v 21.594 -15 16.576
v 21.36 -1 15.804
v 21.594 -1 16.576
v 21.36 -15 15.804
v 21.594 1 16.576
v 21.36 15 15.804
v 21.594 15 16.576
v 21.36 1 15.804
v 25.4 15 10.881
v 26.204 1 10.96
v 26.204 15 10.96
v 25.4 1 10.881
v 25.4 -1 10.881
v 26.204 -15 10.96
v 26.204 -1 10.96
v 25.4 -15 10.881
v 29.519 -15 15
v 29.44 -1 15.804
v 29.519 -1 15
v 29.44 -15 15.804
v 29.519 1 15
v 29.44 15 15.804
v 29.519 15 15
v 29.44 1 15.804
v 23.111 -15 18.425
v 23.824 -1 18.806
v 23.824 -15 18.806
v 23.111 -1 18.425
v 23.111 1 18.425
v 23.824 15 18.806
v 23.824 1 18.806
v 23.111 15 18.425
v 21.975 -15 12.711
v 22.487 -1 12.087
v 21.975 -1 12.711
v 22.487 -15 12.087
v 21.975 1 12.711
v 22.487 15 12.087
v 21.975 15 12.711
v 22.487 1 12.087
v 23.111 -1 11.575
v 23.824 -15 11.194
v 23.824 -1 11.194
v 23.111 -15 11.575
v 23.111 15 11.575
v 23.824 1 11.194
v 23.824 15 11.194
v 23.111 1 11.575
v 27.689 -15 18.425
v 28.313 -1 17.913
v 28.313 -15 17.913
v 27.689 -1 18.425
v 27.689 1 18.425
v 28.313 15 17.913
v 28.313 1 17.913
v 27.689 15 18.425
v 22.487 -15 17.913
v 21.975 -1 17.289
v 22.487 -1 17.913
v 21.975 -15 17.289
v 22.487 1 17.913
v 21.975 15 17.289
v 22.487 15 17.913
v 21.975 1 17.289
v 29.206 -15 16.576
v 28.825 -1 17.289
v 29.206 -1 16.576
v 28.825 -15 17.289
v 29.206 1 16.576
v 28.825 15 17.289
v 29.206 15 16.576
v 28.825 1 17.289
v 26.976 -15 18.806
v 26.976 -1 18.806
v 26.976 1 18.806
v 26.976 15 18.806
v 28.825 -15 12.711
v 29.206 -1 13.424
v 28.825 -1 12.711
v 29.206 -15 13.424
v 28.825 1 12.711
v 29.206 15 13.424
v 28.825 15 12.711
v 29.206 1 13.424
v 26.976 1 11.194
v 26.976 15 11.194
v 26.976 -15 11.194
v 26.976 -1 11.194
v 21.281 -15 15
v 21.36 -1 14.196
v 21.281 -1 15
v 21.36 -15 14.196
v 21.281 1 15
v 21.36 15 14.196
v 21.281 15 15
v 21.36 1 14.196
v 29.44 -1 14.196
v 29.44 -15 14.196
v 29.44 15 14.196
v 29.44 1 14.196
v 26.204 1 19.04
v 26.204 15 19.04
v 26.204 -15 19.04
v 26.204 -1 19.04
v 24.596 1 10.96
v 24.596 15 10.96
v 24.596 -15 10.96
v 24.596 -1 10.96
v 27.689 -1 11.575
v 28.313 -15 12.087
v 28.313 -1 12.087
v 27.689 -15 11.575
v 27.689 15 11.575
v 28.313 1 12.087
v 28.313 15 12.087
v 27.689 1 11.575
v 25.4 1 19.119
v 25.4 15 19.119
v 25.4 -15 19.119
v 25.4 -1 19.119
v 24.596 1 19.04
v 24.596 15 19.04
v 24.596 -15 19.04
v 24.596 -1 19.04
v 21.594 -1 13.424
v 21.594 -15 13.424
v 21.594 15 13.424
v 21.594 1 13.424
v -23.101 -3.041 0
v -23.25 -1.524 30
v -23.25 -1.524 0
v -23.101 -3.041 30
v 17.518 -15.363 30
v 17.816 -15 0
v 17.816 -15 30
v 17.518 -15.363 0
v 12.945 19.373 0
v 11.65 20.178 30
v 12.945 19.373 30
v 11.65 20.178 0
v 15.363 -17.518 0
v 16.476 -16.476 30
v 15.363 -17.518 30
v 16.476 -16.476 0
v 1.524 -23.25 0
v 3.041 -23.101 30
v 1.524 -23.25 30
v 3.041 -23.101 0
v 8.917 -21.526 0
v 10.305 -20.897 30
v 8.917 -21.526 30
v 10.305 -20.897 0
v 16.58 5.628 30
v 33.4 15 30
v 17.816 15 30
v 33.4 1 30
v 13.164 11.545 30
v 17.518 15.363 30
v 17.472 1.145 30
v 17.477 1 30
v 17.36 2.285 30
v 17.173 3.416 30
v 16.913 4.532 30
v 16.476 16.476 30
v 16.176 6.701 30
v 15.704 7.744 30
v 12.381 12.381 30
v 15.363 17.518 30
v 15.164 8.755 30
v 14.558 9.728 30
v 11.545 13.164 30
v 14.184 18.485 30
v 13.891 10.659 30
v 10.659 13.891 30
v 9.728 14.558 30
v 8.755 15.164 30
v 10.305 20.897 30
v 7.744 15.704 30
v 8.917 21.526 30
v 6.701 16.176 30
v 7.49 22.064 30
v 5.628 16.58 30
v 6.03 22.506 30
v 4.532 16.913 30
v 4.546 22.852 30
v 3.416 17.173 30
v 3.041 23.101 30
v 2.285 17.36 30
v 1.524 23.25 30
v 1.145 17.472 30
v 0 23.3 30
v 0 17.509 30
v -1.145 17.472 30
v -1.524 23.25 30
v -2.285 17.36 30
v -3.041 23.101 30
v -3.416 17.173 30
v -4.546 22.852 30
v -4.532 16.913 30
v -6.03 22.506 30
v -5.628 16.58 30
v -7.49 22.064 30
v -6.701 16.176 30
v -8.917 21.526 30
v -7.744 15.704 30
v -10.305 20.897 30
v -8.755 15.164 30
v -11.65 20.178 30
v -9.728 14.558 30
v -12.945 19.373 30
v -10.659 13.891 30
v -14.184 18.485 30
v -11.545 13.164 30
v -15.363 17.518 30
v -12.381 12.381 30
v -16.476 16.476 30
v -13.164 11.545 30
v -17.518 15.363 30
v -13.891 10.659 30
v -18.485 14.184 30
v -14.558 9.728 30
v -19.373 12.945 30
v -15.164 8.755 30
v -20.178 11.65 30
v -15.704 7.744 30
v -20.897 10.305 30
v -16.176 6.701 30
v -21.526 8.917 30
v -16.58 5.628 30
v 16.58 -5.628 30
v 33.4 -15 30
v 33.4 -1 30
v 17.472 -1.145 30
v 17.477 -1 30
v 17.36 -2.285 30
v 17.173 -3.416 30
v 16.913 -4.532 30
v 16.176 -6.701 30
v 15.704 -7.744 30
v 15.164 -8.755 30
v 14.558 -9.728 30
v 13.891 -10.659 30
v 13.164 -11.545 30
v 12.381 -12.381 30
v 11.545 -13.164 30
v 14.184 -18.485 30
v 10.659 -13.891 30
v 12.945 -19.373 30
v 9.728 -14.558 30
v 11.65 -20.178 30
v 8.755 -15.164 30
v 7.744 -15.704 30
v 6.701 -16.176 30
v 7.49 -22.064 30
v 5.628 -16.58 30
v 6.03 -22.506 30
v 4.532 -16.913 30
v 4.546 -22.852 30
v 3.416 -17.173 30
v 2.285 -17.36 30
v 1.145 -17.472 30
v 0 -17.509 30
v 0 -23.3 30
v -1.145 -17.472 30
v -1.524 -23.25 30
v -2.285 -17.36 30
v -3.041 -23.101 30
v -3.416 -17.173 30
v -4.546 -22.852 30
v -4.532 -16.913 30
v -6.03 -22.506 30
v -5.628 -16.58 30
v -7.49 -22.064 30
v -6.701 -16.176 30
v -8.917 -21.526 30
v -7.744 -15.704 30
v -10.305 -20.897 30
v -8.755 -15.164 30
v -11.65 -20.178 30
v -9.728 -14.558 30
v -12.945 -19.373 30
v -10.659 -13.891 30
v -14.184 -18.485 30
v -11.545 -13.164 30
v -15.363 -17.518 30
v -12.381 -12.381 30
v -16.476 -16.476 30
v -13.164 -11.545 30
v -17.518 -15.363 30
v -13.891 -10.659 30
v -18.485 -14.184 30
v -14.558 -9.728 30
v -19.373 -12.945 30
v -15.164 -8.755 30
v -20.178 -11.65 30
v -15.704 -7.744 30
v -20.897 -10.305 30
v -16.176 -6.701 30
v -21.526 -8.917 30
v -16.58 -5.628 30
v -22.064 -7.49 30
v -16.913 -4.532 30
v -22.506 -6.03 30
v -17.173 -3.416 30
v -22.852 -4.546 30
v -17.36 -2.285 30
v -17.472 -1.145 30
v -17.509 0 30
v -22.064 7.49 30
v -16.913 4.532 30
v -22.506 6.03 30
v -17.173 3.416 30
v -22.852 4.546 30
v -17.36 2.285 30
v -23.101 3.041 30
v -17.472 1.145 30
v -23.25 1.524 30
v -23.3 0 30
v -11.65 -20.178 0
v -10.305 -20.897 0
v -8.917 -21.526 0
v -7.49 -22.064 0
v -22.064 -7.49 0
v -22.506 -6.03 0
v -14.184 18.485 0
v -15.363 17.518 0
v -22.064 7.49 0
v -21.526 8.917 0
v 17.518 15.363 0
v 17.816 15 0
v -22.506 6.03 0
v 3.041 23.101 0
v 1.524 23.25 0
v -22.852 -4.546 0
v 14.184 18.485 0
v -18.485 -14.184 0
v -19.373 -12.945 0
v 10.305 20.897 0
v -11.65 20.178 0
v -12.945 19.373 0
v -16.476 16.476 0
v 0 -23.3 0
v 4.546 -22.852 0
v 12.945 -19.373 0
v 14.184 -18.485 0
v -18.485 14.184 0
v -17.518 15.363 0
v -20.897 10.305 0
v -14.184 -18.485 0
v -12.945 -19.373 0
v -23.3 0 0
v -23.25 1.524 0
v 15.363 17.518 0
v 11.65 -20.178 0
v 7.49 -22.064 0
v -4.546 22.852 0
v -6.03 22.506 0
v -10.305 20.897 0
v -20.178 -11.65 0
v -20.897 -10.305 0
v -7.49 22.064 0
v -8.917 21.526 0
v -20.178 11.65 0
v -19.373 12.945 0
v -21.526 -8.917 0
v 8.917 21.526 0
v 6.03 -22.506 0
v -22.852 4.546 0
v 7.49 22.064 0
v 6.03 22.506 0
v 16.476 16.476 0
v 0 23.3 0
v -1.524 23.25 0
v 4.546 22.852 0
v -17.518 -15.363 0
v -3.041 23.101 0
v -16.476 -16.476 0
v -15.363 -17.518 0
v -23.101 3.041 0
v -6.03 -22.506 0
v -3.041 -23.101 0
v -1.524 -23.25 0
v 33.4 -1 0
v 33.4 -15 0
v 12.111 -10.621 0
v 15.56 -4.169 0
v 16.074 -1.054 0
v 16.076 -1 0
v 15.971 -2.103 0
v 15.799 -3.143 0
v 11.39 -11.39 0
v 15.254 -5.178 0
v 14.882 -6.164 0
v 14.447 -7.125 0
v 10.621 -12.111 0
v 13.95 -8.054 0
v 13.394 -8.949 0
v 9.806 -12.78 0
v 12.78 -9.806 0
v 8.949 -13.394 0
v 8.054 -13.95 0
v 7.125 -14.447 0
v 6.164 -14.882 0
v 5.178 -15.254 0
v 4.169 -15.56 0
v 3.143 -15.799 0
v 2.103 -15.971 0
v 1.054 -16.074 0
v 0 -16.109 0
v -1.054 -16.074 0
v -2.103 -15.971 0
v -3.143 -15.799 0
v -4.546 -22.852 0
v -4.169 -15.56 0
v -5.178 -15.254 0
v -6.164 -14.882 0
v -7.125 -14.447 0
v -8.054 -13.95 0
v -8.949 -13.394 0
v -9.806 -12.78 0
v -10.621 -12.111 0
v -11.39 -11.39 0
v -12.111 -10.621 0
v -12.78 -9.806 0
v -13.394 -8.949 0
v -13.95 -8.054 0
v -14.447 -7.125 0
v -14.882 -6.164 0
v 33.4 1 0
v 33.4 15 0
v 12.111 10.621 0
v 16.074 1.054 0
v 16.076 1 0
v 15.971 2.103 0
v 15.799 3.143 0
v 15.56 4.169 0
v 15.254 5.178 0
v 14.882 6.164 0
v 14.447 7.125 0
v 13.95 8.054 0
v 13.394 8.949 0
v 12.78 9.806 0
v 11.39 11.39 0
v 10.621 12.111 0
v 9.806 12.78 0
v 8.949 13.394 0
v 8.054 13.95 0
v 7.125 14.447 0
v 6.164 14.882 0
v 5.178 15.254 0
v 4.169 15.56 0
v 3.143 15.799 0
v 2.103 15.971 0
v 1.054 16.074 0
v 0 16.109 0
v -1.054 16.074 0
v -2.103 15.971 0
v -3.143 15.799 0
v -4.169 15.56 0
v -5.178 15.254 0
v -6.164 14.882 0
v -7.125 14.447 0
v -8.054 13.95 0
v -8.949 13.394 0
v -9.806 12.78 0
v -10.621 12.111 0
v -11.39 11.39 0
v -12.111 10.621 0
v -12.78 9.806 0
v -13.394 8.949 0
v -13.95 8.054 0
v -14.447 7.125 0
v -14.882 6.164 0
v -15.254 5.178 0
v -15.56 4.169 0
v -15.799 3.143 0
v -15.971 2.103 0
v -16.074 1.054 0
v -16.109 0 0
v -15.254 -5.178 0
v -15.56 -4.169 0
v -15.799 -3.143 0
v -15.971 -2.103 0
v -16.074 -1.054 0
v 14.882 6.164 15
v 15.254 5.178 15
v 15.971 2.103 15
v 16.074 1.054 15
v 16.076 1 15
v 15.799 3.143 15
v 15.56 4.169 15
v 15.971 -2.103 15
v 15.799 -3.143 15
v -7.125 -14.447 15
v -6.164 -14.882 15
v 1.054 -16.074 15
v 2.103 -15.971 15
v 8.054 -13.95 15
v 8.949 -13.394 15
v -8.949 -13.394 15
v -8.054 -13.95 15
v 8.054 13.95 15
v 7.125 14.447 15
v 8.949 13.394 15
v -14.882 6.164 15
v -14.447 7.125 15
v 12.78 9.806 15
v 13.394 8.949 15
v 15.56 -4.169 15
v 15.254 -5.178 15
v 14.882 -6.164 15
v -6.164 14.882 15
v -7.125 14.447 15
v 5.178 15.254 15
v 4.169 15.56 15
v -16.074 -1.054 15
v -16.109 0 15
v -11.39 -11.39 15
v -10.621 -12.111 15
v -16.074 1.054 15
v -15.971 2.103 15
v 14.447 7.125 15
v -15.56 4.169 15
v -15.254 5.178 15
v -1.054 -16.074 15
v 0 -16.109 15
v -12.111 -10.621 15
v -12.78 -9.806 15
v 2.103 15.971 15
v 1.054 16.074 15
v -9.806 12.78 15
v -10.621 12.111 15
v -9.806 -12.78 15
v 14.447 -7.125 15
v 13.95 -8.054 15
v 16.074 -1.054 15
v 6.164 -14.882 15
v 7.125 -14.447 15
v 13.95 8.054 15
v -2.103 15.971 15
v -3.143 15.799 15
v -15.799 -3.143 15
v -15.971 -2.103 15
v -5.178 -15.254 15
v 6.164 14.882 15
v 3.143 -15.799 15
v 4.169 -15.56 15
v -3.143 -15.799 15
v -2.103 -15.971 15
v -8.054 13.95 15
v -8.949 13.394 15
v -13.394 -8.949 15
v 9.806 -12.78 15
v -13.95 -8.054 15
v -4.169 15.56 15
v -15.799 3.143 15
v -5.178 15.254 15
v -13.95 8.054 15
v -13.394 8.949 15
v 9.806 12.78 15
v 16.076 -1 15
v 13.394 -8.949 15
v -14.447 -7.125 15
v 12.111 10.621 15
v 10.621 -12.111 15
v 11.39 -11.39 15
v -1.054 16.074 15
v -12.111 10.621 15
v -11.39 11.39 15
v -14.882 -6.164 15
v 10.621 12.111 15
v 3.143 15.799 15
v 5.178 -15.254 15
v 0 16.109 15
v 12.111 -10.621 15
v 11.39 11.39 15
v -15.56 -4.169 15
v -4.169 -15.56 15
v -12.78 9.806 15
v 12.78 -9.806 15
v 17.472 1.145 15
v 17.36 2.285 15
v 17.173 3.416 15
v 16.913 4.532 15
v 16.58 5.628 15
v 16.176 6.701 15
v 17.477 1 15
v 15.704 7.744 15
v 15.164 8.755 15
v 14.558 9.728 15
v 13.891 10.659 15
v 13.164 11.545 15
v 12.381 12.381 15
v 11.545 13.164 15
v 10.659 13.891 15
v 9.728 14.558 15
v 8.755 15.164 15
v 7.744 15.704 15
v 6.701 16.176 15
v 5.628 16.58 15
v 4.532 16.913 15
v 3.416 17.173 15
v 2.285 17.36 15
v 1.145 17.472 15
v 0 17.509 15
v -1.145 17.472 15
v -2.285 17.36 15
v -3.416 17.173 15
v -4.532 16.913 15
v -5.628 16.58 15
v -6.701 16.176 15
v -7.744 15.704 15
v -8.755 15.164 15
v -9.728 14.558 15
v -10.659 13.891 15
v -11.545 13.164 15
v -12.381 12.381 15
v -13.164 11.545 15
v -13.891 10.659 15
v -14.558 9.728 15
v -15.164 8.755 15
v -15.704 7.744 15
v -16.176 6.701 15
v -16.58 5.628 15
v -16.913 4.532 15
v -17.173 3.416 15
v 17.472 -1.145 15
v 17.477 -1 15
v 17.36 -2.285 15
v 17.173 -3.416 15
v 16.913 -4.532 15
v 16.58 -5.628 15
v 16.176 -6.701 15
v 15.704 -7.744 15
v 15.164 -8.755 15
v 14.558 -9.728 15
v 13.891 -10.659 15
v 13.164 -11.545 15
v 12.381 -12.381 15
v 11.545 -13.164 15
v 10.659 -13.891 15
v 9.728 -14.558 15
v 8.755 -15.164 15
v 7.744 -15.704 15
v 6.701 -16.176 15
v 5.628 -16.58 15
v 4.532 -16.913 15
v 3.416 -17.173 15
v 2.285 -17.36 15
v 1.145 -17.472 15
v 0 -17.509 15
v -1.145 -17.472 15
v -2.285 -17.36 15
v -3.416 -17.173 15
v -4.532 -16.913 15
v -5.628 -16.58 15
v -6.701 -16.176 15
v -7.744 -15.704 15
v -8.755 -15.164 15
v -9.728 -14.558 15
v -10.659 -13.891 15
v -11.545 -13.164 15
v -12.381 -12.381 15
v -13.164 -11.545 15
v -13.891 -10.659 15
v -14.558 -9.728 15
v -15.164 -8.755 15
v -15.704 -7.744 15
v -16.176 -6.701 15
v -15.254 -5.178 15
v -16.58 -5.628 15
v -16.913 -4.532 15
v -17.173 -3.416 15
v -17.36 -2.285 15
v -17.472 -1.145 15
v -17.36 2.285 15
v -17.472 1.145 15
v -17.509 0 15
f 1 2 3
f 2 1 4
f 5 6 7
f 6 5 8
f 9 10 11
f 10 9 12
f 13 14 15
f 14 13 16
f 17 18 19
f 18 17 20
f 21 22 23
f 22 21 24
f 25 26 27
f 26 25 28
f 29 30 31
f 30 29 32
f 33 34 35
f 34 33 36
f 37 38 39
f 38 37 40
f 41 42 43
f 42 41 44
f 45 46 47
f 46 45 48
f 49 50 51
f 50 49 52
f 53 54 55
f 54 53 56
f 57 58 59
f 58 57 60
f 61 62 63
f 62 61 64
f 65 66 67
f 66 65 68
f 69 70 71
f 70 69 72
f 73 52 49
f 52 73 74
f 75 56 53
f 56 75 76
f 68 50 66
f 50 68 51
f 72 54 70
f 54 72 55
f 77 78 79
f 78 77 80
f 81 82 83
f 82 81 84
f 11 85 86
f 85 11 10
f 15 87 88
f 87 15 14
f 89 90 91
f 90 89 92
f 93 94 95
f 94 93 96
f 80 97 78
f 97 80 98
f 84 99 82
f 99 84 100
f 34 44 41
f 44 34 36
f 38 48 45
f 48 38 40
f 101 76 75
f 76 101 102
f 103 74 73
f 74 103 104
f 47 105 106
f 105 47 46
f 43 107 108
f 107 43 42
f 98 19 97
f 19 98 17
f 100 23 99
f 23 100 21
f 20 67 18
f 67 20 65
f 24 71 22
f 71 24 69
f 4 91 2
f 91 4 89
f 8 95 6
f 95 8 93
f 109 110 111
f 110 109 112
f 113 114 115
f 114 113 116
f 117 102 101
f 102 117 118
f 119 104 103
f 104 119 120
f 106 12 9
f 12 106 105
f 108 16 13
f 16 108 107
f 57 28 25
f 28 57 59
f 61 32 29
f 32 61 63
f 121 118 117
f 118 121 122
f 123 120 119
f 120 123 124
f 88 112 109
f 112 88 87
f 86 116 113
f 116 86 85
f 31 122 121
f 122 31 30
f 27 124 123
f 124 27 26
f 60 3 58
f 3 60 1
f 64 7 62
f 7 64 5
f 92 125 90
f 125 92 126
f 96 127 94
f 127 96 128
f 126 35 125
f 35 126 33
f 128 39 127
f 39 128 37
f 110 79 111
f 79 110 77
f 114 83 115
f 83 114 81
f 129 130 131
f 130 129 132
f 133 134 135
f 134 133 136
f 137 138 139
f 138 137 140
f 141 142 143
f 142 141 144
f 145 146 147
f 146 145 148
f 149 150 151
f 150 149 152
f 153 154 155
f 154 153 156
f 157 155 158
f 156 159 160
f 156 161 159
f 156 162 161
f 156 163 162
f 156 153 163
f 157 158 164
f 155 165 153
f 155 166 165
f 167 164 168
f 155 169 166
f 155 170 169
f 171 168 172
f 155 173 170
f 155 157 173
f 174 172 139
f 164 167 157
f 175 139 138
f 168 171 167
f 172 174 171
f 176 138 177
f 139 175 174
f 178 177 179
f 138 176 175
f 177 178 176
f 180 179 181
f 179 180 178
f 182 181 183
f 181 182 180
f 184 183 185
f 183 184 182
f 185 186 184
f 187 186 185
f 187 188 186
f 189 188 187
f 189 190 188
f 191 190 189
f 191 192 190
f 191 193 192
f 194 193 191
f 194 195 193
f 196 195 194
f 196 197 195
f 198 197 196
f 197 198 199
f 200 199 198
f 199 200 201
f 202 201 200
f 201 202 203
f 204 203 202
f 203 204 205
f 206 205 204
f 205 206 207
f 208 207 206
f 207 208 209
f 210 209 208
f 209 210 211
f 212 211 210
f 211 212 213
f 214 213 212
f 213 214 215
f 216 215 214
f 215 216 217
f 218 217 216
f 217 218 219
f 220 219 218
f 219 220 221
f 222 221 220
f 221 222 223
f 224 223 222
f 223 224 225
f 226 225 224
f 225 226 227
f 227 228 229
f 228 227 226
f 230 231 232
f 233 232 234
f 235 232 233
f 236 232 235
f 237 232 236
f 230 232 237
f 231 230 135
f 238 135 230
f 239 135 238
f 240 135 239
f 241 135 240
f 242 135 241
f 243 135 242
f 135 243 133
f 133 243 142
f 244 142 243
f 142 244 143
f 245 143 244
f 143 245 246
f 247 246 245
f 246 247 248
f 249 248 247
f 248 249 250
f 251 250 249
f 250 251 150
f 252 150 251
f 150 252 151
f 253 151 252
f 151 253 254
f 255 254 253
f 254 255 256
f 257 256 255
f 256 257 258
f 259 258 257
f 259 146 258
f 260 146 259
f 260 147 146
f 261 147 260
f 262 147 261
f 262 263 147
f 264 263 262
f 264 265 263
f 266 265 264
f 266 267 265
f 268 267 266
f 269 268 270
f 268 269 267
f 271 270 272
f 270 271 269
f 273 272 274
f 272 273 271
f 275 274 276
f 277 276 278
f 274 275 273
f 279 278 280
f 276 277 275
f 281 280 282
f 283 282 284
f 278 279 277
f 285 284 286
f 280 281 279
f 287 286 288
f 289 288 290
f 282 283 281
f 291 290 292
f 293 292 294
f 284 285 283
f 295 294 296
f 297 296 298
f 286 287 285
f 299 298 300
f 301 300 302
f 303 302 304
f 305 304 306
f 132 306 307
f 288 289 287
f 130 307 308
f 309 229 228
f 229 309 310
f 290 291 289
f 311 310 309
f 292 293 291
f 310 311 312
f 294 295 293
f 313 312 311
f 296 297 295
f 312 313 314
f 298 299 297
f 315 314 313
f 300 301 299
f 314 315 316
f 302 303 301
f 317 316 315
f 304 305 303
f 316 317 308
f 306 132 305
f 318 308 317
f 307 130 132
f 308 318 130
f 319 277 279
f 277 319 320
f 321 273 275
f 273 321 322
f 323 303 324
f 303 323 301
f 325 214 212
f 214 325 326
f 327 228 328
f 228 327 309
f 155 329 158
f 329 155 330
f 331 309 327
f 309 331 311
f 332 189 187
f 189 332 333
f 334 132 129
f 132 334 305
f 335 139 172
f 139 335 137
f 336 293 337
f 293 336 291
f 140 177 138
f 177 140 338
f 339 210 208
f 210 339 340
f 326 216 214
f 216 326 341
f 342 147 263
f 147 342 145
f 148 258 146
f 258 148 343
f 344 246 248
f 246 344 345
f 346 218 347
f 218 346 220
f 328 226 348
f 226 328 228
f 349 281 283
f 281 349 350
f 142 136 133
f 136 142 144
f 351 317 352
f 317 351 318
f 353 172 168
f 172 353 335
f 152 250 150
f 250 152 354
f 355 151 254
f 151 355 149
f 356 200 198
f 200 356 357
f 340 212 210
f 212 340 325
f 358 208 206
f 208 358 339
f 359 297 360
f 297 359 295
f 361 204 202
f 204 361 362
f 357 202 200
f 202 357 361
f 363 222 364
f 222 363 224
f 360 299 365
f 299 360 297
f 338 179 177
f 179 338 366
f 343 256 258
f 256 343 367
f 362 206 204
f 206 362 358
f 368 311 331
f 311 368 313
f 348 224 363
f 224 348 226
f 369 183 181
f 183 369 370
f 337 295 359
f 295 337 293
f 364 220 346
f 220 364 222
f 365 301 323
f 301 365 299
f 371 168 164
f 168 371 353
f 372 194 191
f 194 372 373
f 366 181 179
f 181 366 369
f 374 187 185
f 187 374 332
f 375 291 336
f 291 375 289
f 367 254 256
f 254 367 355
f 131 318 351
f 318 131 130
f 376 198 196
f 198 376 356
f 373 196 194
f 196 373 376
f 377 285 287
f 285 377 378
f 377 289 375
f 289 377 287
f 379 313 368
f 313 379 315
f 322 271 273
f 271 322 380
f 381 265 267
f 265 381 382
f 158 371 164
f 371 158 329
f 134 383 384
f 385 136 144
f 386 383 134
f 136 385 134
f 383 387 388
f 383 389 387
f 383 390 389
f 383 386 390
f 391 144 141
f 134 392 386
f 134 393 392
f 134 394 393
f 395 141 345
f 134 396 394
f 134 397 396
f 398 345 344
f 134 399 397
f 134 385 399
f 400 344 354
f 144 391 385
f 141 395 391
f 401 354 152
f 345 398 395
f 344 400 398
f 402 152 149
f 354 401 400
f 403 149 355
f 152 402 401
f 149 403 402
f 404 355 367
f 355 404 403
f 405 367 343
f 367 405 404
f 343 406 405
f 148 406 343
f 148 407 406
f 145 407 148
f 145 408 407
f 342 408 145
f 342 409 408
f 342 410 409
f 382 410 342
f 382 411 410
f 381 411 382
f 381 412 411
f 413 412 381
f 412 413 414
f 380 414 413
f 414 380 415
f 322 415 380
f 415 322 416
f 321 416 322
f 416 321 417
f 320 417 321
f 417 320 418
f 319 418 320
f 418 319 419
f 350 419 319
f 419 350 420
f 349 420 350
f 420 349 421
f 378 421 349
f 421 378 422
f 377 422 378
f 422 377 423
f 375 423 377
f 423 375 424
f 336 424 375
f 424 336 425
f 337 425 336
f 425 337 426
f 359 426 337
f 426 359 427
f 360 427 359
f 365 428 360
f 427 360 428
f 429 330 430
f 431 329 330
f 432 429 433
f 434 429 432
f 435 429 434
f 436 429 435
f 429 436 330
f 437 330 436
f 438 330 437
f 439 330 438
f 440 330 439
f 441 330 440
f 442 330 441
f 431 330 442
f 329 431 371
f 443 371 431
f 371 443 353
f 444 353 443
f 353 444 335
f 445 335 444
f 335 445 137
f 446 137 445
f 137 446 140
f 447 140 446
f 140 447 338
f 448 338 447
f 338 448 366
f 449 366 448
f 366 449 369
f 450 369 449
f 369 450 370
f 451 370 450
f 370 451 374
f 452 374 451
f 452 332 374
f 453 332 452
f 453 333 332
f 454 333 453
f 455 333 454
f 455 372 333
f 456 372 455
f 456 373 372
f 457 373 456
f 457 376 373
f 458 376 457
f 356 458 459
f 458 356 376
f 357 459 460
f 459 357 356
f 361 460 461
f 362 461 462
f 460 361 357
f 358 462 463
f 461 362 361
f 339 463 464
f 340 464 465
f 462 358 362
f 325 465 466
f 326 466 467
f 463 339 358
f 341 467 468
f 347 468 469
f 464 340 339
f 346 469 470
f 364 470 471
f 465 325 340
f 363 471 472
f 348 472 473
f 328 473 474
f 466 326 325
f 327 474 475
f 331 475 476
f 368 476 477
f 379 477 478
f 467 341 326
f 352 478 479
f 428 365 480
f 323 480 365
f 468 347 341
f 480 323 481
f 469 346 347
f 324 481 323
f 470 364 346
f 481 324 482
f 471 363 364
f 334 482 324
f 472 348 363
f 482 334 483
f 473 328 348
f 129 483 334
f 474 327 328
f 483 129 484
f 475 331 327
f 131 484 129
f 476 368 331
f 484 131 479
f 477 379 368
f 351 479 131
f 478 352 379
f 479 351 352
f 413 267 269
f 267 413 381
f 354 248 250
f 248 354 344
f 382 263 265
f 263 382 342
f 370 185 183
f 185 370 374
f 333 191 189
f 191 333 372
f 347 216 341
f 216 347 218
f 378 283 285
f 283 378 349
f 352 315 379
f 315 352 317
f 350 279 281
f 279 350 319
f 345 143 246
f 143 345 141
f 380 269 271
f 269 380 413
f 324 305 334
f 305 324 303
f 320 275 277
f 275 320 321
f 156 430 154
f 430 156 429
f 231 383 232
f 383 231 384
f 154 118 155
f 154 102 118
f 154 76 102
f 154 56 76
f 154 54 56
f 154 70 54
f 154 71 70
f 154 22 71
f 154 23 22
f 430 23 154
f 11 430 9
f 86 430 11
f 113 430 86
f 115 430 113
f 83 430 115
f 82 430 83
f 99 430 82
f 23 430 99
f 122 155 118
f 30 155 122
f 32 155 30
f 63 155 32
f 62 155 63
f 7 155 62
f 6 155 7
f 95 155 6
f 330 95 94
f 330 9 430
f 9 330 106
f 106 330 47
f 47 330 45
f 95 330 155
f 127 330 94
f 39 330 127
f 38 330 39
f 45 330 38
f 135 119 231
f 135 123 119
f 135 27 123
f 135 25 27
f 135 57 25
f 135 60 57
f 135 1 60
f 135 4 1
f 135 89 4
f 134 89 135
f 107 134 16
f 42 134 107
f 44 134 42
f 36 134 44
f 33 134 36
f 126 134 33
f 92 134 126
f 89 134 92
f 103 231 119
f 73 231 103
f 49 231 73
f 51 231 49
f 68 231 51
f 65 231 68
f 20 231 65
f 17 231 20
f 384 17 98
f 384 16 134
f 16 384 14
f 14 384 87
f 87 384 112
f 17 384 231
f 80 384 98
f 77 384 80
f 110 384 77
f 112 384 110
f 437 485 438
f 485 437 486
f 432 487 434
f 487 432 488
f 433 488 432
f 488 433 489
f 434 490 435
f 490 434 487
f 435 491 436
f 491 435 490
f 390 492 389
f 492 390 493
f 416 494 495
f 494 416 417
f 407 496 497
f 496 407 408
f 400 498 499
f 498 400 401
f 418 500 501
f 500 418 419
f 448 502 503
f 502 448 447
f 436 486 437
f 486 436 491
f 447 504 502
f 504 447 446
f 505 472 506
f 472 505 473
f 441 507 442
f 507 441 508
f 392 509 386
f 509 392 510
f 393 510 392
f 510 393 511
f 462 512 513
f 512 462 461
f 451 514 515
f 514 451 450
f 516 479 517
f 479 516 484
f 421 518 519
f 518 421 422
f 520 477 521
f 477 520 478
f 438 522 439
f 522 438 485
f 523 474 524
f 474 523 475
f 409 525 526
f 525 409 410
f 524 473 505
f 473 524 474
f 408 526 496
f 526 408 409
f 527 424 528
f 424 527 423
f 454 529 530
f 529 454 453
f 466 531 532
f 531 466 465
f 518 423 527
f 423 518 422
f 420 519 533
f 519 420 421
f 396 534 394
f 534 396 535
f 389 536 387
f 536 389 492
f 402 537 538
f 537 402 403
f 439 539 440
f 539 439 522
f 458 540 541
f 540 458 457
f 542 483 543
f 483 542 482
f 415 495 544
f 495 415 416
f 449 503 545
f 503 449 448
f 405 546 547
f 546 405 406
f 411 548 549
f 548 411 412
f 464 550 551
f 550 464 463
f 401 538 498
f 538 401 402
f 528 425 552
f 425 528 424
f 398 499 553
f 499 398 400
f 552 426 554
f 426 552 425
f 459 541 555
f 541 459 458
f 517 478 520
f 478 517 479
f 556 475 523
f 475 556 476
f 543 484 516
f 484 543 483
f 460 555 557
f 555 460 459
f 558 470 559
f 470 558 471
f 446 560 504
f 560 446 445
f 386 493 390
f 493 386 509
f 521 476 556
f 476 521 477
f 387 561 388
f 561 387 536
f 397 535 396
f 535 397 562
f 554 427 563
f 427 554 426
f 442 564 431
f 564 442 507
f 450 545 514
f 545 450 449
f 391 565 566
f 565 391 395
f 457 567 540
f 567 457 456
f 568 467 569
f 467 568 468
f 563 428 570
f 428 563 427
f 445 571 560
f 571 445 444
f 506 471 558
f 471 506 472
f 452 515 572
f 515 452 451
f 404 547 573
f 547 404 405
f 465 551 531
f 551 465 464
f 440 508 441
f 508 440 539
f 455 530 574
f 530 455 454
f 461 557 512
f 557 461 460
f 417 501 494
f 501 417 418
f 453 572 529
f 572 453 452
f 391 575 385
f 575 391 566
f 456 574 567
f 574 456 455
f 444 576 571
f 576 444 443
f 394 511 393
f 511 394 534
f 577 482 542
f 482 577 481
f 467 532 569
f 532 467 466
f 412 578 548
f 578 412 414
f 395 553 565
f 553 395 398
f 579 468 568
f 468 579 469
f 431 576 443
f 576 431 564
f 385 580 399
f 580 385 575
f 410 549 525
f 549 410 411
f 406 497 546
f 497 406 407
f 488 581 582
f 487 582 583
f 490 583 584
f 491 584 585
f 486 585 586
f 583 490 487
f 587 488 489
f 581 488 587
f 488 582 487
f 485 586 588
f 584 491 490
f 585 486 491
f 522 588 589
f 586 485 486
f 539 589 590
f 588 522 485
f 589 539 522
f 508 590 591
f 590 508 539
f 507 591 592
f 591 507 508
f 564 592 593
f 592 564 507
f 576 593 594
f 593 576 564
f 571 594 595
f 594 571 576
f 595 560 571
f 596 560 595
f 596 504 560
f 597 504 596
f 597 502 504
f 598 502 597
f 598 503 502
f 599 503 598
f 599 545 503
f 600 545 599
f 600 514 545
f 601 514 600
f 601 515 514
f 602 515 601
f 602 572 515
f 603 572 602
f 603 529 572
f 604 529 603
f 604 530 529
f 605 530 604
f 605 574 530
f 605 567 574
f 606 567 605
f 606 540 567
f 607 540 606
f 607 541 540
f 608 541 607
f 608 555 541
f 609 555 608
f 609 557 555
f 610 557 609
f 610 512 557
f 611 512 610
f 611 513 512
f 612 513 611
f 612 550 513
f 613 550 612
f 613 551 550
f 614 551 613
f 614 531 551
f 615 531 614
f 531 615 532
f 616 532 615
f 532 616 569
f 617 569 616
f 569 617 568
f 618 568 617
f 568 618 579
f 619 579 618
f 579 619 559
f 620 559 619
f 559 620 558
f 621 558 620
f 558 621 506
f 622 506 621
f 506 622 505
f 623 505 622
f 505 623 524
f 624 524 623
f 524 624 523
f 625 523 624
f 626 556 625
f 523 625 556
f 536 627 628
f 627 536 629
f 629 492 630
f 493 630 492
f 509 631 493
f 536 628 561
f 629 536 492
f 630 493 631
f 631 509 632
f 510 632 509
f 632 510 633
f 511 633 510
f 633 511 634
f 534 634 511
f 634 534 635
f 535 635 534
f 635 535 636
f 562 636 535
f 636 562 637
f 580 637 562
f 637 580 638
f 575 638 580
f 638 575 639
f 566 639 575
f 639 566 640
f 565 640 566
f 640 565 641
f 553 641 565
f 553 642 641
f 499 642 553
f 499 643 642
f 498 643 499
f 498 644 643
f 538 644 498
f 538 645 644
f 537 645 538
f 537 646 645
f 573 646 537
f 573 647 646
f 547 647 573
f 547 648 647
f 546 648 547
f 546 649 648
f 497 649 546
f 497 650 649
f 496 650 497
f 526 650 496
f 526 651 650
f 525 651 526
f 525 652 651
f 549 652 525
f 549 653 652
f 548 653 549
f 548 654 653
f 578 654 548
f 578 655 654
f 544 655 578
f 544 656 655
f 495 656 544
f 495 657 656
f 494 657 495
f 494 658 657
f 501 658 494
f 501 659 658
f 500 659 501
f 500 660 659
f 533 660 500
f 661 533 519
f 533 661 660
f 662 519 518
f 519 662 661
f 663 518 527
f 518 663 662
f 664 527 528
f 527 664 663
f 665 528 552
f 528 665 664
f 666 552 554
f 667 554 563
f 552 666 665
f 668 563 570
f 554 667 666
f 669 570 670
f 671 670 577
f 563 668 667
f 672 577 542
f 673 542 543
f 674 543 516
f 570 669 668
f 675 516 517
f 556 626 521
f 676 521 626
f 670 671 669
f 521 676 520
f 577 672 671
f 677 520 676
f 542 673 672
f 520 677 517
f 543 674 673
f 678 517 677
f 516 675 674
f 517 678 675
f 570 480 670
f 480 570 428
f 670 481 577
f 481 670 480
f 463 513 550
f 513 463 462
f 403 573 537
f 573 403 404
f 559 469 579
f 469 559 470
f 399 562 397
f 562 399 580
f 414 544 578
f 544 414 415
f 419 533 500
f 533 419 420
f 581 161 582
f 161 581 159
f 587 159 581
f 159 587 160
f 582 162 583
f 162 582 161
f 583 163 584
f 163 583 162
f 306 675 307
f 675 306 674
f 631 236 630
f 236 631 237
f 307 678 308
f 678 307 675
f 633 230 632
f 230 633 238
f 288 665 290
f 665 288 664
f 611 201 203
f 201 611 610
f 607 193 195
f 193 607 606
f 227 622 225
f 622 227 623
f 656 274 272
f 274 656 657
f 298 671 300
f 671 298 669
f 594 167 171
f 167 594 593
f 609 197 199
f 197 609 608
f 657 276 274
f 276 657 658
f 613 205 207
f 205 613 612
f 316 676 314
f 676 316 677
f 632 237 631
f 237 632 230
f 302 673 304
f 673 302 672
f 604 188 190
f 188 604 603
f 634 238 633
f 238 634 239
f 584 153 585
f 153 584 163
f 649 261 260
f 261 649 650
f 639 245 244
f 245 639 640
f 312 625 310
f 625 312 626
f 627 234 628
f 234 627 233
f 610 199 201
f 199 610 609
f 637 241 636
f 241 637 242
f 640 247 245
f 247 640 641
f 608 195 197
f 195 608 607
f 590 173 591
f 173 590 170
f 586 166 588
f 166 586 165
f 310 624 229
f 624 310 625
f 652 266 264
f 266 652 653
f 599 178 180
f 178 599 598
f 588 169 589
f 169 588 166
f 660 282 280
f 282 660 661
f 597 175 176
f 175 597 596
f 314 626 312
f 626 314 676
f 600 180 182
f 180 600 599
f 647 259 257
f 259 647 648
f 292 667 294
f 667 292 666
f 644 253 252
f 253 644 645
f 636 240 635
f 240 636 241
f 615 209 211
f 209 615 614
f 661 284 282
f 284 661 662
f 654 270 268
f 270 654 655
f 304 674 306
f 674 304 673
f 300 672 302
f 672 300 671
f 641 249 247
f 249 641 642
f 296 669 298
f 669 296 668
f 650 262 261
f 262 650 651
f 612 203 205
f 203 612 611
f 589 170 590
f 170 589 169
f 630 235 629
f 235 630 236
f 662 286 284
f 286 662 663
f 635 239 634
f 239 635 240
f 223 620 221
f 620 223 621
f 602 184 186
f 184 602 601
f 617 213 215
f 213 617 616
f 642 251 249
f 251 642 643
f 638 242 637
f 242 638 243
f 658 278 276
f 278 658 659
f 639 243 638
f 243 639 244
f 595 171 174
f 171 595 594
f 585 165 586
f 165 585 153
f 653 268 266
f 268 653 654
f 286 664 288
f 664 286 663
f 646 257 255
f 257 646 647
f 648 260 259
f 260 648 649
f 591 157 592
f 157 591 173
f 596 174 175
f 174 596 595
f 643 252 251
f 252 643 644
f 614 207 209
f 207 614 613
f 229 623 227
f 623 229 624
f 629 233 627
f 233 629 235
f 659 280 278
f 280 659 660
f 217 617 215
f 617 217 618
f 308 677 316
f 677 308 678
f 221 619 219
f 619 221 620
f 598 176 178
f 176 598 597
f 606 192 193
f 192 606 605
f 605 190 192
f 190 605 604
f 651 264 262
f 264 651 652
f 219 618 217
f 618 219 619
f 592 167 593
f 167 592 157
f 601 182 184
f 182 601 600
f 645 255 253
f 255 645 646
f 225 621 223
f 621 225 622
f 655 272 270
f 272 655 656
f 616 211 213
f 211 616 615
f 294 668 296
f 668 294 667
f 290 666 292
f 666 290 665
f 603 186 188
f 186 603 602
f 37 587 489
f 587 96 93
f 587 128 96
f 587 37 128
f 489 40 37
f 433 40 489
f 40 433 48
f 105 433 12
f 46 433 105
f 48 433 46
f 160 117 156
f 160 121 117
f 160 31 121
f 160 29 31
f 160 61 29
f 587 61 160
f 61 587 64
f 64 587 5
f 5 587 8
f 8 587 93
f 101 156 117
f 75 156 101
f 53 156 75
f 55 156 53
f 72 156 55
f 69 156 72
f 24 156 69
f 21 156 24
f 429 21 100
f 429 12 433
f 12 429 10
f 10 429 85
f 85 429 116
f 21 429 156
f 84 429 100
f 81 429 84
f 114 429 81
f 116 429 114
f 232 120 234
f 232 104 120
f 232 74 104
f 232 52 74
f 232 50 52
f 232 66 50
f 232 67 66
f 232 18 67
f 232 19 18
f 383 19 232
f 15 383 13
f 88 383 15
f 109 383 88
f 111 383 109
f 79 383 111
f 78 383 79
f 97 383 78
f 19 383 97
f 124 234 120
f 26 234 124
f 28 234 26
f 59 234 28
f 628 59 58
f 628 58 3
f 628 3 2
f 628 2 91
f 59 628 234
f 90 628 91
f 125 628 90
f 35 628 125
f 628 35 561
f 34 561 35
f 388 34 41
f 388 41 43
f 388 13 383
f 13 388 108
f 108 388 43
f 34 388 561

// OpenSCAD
// file: zcube.scad
// This function creates a cube with a given x/y either above (f=1) or below (f=-1) the z axis.
module zcube(dimensions, z=0, f=1) {
	translate([0, 0, dimensions[2]/2 * f + z]) cube(dimensions, true);
}
// file: bolts.scad
$radial_error = 0.1;
$fn = 32;

module cylinder_outer(height, radius, fn=$fn) {
	fudge = 1/cos(180/fn);
	cylinder(h=height,r=radius*fudge+$radial_error, $fn=fn);
}

module cylinder_inner(height, radius, fn=$fn) {
	cylinder(h=height,r=radius-$radial_error,$fn=fn);
}

// Make a hole for a bolt/screw combination.
module bolt(diameter=3, depth=8, nut_offset=2, shaft_length=10, inset=10) {
	hole(diameter, depth, inset);
	hull() {
		shaft_width = diameter;
		translate([0, 0, nut_offset]) rotate(360/12, [0, 0, 1]) cylinder_outer(diameter, shaft_width, 6);
		translate([0, shaft_length, nut_offset]) rotate(360/12, [0, 0, 1]) cylinder_outer(diameter, shaft_width, 6);
	}
}

// Make a hole. The diameter is the size of the screw (e.g. 3 for M3). Depth is how far the hole should go for the thread, and inset is how far out there should be a hole for the head to go.
module hole(diameter=3, depth=6, inset=10) {
	cylinder_outer(depth, diameter/2);
	translate([0, 0, depth]) cylinder_outer(inset, diameter, 32);
}

module countersunk_hole(diameter=3, depth=6, inset=10) {
	hole(diameter, depth, inset);
	translate([0, 0, depth-diameter/2]) cylinder(r1=diameter/2+$radial_error, r2=diameter+$radial_error, h=diameter/2);
}

module mounting_hole(diameter=3, depth=6, inset=10, outset=3) {
	difference() {
		cylinder_outer(depth, diameter/2+outset);
		hole(diameter=diameter, depth=depth, inset=inset);
	}
}

rotate(90, [1, 0, 0]) difference() {
	cube([30, 10, 10]);
	translate([5, 5, 0]) bolt(diameter=3, depth=8);
	translate([15, 5, 0]) bolt(diameter=4, depth=8);
	translate([25, 5, 0]) countersunk_hole(diameter=4, depth=8);
}
// file: parts.scad
$tolerance = 0.1;
$fn = $preview ? 12 : 32;

use <bolts.scad>;
use <zcube.scad>;

large_radius = 34.8/2;
small_radius = 32/2;

rf = 3;

thickness = 30;
sleve_thickness = 6;
outer_radius = large_radius + sleve_thickness;

outset = 16+4;

module block(height = 30) {
	translate([outer_radius, 0, 0]) zcube([outset, thickness, height]);
}

module cutout(height = 30, thickness = 2) {
	translate([0, -thickness/2, 0]) cube([(outer_radius*2+outset+$tolerance)/2, thickness, height]);
}

module sleve(height, hole_offset) {
	render() difference() {
		render() union() {
			cylinder_inner(height, outer_radius, 32*rf);
			block(height);
		}
		
		children();
		
		translate([outer_radius+2, thickness/2+1, hole_offset]) rotate(90, [1, 0, 0]) hole(8, thickness + 2, 0);
		
		cutout(height);
	}
}

module telescope_cutout(height) {
	tube_offset = height / 2;
	
	render() union() {
		cylinder_outer(tube_offset, small_radius, 32*rf);
		translate([0, 0, tube_offset]) cylinder_outer(height-tube_offset, large_radius, 32*rf);
	}
}
// main file
include <parts.scad>;

height = 30;

sleve(height, height/2) telescope_cutout(height);
